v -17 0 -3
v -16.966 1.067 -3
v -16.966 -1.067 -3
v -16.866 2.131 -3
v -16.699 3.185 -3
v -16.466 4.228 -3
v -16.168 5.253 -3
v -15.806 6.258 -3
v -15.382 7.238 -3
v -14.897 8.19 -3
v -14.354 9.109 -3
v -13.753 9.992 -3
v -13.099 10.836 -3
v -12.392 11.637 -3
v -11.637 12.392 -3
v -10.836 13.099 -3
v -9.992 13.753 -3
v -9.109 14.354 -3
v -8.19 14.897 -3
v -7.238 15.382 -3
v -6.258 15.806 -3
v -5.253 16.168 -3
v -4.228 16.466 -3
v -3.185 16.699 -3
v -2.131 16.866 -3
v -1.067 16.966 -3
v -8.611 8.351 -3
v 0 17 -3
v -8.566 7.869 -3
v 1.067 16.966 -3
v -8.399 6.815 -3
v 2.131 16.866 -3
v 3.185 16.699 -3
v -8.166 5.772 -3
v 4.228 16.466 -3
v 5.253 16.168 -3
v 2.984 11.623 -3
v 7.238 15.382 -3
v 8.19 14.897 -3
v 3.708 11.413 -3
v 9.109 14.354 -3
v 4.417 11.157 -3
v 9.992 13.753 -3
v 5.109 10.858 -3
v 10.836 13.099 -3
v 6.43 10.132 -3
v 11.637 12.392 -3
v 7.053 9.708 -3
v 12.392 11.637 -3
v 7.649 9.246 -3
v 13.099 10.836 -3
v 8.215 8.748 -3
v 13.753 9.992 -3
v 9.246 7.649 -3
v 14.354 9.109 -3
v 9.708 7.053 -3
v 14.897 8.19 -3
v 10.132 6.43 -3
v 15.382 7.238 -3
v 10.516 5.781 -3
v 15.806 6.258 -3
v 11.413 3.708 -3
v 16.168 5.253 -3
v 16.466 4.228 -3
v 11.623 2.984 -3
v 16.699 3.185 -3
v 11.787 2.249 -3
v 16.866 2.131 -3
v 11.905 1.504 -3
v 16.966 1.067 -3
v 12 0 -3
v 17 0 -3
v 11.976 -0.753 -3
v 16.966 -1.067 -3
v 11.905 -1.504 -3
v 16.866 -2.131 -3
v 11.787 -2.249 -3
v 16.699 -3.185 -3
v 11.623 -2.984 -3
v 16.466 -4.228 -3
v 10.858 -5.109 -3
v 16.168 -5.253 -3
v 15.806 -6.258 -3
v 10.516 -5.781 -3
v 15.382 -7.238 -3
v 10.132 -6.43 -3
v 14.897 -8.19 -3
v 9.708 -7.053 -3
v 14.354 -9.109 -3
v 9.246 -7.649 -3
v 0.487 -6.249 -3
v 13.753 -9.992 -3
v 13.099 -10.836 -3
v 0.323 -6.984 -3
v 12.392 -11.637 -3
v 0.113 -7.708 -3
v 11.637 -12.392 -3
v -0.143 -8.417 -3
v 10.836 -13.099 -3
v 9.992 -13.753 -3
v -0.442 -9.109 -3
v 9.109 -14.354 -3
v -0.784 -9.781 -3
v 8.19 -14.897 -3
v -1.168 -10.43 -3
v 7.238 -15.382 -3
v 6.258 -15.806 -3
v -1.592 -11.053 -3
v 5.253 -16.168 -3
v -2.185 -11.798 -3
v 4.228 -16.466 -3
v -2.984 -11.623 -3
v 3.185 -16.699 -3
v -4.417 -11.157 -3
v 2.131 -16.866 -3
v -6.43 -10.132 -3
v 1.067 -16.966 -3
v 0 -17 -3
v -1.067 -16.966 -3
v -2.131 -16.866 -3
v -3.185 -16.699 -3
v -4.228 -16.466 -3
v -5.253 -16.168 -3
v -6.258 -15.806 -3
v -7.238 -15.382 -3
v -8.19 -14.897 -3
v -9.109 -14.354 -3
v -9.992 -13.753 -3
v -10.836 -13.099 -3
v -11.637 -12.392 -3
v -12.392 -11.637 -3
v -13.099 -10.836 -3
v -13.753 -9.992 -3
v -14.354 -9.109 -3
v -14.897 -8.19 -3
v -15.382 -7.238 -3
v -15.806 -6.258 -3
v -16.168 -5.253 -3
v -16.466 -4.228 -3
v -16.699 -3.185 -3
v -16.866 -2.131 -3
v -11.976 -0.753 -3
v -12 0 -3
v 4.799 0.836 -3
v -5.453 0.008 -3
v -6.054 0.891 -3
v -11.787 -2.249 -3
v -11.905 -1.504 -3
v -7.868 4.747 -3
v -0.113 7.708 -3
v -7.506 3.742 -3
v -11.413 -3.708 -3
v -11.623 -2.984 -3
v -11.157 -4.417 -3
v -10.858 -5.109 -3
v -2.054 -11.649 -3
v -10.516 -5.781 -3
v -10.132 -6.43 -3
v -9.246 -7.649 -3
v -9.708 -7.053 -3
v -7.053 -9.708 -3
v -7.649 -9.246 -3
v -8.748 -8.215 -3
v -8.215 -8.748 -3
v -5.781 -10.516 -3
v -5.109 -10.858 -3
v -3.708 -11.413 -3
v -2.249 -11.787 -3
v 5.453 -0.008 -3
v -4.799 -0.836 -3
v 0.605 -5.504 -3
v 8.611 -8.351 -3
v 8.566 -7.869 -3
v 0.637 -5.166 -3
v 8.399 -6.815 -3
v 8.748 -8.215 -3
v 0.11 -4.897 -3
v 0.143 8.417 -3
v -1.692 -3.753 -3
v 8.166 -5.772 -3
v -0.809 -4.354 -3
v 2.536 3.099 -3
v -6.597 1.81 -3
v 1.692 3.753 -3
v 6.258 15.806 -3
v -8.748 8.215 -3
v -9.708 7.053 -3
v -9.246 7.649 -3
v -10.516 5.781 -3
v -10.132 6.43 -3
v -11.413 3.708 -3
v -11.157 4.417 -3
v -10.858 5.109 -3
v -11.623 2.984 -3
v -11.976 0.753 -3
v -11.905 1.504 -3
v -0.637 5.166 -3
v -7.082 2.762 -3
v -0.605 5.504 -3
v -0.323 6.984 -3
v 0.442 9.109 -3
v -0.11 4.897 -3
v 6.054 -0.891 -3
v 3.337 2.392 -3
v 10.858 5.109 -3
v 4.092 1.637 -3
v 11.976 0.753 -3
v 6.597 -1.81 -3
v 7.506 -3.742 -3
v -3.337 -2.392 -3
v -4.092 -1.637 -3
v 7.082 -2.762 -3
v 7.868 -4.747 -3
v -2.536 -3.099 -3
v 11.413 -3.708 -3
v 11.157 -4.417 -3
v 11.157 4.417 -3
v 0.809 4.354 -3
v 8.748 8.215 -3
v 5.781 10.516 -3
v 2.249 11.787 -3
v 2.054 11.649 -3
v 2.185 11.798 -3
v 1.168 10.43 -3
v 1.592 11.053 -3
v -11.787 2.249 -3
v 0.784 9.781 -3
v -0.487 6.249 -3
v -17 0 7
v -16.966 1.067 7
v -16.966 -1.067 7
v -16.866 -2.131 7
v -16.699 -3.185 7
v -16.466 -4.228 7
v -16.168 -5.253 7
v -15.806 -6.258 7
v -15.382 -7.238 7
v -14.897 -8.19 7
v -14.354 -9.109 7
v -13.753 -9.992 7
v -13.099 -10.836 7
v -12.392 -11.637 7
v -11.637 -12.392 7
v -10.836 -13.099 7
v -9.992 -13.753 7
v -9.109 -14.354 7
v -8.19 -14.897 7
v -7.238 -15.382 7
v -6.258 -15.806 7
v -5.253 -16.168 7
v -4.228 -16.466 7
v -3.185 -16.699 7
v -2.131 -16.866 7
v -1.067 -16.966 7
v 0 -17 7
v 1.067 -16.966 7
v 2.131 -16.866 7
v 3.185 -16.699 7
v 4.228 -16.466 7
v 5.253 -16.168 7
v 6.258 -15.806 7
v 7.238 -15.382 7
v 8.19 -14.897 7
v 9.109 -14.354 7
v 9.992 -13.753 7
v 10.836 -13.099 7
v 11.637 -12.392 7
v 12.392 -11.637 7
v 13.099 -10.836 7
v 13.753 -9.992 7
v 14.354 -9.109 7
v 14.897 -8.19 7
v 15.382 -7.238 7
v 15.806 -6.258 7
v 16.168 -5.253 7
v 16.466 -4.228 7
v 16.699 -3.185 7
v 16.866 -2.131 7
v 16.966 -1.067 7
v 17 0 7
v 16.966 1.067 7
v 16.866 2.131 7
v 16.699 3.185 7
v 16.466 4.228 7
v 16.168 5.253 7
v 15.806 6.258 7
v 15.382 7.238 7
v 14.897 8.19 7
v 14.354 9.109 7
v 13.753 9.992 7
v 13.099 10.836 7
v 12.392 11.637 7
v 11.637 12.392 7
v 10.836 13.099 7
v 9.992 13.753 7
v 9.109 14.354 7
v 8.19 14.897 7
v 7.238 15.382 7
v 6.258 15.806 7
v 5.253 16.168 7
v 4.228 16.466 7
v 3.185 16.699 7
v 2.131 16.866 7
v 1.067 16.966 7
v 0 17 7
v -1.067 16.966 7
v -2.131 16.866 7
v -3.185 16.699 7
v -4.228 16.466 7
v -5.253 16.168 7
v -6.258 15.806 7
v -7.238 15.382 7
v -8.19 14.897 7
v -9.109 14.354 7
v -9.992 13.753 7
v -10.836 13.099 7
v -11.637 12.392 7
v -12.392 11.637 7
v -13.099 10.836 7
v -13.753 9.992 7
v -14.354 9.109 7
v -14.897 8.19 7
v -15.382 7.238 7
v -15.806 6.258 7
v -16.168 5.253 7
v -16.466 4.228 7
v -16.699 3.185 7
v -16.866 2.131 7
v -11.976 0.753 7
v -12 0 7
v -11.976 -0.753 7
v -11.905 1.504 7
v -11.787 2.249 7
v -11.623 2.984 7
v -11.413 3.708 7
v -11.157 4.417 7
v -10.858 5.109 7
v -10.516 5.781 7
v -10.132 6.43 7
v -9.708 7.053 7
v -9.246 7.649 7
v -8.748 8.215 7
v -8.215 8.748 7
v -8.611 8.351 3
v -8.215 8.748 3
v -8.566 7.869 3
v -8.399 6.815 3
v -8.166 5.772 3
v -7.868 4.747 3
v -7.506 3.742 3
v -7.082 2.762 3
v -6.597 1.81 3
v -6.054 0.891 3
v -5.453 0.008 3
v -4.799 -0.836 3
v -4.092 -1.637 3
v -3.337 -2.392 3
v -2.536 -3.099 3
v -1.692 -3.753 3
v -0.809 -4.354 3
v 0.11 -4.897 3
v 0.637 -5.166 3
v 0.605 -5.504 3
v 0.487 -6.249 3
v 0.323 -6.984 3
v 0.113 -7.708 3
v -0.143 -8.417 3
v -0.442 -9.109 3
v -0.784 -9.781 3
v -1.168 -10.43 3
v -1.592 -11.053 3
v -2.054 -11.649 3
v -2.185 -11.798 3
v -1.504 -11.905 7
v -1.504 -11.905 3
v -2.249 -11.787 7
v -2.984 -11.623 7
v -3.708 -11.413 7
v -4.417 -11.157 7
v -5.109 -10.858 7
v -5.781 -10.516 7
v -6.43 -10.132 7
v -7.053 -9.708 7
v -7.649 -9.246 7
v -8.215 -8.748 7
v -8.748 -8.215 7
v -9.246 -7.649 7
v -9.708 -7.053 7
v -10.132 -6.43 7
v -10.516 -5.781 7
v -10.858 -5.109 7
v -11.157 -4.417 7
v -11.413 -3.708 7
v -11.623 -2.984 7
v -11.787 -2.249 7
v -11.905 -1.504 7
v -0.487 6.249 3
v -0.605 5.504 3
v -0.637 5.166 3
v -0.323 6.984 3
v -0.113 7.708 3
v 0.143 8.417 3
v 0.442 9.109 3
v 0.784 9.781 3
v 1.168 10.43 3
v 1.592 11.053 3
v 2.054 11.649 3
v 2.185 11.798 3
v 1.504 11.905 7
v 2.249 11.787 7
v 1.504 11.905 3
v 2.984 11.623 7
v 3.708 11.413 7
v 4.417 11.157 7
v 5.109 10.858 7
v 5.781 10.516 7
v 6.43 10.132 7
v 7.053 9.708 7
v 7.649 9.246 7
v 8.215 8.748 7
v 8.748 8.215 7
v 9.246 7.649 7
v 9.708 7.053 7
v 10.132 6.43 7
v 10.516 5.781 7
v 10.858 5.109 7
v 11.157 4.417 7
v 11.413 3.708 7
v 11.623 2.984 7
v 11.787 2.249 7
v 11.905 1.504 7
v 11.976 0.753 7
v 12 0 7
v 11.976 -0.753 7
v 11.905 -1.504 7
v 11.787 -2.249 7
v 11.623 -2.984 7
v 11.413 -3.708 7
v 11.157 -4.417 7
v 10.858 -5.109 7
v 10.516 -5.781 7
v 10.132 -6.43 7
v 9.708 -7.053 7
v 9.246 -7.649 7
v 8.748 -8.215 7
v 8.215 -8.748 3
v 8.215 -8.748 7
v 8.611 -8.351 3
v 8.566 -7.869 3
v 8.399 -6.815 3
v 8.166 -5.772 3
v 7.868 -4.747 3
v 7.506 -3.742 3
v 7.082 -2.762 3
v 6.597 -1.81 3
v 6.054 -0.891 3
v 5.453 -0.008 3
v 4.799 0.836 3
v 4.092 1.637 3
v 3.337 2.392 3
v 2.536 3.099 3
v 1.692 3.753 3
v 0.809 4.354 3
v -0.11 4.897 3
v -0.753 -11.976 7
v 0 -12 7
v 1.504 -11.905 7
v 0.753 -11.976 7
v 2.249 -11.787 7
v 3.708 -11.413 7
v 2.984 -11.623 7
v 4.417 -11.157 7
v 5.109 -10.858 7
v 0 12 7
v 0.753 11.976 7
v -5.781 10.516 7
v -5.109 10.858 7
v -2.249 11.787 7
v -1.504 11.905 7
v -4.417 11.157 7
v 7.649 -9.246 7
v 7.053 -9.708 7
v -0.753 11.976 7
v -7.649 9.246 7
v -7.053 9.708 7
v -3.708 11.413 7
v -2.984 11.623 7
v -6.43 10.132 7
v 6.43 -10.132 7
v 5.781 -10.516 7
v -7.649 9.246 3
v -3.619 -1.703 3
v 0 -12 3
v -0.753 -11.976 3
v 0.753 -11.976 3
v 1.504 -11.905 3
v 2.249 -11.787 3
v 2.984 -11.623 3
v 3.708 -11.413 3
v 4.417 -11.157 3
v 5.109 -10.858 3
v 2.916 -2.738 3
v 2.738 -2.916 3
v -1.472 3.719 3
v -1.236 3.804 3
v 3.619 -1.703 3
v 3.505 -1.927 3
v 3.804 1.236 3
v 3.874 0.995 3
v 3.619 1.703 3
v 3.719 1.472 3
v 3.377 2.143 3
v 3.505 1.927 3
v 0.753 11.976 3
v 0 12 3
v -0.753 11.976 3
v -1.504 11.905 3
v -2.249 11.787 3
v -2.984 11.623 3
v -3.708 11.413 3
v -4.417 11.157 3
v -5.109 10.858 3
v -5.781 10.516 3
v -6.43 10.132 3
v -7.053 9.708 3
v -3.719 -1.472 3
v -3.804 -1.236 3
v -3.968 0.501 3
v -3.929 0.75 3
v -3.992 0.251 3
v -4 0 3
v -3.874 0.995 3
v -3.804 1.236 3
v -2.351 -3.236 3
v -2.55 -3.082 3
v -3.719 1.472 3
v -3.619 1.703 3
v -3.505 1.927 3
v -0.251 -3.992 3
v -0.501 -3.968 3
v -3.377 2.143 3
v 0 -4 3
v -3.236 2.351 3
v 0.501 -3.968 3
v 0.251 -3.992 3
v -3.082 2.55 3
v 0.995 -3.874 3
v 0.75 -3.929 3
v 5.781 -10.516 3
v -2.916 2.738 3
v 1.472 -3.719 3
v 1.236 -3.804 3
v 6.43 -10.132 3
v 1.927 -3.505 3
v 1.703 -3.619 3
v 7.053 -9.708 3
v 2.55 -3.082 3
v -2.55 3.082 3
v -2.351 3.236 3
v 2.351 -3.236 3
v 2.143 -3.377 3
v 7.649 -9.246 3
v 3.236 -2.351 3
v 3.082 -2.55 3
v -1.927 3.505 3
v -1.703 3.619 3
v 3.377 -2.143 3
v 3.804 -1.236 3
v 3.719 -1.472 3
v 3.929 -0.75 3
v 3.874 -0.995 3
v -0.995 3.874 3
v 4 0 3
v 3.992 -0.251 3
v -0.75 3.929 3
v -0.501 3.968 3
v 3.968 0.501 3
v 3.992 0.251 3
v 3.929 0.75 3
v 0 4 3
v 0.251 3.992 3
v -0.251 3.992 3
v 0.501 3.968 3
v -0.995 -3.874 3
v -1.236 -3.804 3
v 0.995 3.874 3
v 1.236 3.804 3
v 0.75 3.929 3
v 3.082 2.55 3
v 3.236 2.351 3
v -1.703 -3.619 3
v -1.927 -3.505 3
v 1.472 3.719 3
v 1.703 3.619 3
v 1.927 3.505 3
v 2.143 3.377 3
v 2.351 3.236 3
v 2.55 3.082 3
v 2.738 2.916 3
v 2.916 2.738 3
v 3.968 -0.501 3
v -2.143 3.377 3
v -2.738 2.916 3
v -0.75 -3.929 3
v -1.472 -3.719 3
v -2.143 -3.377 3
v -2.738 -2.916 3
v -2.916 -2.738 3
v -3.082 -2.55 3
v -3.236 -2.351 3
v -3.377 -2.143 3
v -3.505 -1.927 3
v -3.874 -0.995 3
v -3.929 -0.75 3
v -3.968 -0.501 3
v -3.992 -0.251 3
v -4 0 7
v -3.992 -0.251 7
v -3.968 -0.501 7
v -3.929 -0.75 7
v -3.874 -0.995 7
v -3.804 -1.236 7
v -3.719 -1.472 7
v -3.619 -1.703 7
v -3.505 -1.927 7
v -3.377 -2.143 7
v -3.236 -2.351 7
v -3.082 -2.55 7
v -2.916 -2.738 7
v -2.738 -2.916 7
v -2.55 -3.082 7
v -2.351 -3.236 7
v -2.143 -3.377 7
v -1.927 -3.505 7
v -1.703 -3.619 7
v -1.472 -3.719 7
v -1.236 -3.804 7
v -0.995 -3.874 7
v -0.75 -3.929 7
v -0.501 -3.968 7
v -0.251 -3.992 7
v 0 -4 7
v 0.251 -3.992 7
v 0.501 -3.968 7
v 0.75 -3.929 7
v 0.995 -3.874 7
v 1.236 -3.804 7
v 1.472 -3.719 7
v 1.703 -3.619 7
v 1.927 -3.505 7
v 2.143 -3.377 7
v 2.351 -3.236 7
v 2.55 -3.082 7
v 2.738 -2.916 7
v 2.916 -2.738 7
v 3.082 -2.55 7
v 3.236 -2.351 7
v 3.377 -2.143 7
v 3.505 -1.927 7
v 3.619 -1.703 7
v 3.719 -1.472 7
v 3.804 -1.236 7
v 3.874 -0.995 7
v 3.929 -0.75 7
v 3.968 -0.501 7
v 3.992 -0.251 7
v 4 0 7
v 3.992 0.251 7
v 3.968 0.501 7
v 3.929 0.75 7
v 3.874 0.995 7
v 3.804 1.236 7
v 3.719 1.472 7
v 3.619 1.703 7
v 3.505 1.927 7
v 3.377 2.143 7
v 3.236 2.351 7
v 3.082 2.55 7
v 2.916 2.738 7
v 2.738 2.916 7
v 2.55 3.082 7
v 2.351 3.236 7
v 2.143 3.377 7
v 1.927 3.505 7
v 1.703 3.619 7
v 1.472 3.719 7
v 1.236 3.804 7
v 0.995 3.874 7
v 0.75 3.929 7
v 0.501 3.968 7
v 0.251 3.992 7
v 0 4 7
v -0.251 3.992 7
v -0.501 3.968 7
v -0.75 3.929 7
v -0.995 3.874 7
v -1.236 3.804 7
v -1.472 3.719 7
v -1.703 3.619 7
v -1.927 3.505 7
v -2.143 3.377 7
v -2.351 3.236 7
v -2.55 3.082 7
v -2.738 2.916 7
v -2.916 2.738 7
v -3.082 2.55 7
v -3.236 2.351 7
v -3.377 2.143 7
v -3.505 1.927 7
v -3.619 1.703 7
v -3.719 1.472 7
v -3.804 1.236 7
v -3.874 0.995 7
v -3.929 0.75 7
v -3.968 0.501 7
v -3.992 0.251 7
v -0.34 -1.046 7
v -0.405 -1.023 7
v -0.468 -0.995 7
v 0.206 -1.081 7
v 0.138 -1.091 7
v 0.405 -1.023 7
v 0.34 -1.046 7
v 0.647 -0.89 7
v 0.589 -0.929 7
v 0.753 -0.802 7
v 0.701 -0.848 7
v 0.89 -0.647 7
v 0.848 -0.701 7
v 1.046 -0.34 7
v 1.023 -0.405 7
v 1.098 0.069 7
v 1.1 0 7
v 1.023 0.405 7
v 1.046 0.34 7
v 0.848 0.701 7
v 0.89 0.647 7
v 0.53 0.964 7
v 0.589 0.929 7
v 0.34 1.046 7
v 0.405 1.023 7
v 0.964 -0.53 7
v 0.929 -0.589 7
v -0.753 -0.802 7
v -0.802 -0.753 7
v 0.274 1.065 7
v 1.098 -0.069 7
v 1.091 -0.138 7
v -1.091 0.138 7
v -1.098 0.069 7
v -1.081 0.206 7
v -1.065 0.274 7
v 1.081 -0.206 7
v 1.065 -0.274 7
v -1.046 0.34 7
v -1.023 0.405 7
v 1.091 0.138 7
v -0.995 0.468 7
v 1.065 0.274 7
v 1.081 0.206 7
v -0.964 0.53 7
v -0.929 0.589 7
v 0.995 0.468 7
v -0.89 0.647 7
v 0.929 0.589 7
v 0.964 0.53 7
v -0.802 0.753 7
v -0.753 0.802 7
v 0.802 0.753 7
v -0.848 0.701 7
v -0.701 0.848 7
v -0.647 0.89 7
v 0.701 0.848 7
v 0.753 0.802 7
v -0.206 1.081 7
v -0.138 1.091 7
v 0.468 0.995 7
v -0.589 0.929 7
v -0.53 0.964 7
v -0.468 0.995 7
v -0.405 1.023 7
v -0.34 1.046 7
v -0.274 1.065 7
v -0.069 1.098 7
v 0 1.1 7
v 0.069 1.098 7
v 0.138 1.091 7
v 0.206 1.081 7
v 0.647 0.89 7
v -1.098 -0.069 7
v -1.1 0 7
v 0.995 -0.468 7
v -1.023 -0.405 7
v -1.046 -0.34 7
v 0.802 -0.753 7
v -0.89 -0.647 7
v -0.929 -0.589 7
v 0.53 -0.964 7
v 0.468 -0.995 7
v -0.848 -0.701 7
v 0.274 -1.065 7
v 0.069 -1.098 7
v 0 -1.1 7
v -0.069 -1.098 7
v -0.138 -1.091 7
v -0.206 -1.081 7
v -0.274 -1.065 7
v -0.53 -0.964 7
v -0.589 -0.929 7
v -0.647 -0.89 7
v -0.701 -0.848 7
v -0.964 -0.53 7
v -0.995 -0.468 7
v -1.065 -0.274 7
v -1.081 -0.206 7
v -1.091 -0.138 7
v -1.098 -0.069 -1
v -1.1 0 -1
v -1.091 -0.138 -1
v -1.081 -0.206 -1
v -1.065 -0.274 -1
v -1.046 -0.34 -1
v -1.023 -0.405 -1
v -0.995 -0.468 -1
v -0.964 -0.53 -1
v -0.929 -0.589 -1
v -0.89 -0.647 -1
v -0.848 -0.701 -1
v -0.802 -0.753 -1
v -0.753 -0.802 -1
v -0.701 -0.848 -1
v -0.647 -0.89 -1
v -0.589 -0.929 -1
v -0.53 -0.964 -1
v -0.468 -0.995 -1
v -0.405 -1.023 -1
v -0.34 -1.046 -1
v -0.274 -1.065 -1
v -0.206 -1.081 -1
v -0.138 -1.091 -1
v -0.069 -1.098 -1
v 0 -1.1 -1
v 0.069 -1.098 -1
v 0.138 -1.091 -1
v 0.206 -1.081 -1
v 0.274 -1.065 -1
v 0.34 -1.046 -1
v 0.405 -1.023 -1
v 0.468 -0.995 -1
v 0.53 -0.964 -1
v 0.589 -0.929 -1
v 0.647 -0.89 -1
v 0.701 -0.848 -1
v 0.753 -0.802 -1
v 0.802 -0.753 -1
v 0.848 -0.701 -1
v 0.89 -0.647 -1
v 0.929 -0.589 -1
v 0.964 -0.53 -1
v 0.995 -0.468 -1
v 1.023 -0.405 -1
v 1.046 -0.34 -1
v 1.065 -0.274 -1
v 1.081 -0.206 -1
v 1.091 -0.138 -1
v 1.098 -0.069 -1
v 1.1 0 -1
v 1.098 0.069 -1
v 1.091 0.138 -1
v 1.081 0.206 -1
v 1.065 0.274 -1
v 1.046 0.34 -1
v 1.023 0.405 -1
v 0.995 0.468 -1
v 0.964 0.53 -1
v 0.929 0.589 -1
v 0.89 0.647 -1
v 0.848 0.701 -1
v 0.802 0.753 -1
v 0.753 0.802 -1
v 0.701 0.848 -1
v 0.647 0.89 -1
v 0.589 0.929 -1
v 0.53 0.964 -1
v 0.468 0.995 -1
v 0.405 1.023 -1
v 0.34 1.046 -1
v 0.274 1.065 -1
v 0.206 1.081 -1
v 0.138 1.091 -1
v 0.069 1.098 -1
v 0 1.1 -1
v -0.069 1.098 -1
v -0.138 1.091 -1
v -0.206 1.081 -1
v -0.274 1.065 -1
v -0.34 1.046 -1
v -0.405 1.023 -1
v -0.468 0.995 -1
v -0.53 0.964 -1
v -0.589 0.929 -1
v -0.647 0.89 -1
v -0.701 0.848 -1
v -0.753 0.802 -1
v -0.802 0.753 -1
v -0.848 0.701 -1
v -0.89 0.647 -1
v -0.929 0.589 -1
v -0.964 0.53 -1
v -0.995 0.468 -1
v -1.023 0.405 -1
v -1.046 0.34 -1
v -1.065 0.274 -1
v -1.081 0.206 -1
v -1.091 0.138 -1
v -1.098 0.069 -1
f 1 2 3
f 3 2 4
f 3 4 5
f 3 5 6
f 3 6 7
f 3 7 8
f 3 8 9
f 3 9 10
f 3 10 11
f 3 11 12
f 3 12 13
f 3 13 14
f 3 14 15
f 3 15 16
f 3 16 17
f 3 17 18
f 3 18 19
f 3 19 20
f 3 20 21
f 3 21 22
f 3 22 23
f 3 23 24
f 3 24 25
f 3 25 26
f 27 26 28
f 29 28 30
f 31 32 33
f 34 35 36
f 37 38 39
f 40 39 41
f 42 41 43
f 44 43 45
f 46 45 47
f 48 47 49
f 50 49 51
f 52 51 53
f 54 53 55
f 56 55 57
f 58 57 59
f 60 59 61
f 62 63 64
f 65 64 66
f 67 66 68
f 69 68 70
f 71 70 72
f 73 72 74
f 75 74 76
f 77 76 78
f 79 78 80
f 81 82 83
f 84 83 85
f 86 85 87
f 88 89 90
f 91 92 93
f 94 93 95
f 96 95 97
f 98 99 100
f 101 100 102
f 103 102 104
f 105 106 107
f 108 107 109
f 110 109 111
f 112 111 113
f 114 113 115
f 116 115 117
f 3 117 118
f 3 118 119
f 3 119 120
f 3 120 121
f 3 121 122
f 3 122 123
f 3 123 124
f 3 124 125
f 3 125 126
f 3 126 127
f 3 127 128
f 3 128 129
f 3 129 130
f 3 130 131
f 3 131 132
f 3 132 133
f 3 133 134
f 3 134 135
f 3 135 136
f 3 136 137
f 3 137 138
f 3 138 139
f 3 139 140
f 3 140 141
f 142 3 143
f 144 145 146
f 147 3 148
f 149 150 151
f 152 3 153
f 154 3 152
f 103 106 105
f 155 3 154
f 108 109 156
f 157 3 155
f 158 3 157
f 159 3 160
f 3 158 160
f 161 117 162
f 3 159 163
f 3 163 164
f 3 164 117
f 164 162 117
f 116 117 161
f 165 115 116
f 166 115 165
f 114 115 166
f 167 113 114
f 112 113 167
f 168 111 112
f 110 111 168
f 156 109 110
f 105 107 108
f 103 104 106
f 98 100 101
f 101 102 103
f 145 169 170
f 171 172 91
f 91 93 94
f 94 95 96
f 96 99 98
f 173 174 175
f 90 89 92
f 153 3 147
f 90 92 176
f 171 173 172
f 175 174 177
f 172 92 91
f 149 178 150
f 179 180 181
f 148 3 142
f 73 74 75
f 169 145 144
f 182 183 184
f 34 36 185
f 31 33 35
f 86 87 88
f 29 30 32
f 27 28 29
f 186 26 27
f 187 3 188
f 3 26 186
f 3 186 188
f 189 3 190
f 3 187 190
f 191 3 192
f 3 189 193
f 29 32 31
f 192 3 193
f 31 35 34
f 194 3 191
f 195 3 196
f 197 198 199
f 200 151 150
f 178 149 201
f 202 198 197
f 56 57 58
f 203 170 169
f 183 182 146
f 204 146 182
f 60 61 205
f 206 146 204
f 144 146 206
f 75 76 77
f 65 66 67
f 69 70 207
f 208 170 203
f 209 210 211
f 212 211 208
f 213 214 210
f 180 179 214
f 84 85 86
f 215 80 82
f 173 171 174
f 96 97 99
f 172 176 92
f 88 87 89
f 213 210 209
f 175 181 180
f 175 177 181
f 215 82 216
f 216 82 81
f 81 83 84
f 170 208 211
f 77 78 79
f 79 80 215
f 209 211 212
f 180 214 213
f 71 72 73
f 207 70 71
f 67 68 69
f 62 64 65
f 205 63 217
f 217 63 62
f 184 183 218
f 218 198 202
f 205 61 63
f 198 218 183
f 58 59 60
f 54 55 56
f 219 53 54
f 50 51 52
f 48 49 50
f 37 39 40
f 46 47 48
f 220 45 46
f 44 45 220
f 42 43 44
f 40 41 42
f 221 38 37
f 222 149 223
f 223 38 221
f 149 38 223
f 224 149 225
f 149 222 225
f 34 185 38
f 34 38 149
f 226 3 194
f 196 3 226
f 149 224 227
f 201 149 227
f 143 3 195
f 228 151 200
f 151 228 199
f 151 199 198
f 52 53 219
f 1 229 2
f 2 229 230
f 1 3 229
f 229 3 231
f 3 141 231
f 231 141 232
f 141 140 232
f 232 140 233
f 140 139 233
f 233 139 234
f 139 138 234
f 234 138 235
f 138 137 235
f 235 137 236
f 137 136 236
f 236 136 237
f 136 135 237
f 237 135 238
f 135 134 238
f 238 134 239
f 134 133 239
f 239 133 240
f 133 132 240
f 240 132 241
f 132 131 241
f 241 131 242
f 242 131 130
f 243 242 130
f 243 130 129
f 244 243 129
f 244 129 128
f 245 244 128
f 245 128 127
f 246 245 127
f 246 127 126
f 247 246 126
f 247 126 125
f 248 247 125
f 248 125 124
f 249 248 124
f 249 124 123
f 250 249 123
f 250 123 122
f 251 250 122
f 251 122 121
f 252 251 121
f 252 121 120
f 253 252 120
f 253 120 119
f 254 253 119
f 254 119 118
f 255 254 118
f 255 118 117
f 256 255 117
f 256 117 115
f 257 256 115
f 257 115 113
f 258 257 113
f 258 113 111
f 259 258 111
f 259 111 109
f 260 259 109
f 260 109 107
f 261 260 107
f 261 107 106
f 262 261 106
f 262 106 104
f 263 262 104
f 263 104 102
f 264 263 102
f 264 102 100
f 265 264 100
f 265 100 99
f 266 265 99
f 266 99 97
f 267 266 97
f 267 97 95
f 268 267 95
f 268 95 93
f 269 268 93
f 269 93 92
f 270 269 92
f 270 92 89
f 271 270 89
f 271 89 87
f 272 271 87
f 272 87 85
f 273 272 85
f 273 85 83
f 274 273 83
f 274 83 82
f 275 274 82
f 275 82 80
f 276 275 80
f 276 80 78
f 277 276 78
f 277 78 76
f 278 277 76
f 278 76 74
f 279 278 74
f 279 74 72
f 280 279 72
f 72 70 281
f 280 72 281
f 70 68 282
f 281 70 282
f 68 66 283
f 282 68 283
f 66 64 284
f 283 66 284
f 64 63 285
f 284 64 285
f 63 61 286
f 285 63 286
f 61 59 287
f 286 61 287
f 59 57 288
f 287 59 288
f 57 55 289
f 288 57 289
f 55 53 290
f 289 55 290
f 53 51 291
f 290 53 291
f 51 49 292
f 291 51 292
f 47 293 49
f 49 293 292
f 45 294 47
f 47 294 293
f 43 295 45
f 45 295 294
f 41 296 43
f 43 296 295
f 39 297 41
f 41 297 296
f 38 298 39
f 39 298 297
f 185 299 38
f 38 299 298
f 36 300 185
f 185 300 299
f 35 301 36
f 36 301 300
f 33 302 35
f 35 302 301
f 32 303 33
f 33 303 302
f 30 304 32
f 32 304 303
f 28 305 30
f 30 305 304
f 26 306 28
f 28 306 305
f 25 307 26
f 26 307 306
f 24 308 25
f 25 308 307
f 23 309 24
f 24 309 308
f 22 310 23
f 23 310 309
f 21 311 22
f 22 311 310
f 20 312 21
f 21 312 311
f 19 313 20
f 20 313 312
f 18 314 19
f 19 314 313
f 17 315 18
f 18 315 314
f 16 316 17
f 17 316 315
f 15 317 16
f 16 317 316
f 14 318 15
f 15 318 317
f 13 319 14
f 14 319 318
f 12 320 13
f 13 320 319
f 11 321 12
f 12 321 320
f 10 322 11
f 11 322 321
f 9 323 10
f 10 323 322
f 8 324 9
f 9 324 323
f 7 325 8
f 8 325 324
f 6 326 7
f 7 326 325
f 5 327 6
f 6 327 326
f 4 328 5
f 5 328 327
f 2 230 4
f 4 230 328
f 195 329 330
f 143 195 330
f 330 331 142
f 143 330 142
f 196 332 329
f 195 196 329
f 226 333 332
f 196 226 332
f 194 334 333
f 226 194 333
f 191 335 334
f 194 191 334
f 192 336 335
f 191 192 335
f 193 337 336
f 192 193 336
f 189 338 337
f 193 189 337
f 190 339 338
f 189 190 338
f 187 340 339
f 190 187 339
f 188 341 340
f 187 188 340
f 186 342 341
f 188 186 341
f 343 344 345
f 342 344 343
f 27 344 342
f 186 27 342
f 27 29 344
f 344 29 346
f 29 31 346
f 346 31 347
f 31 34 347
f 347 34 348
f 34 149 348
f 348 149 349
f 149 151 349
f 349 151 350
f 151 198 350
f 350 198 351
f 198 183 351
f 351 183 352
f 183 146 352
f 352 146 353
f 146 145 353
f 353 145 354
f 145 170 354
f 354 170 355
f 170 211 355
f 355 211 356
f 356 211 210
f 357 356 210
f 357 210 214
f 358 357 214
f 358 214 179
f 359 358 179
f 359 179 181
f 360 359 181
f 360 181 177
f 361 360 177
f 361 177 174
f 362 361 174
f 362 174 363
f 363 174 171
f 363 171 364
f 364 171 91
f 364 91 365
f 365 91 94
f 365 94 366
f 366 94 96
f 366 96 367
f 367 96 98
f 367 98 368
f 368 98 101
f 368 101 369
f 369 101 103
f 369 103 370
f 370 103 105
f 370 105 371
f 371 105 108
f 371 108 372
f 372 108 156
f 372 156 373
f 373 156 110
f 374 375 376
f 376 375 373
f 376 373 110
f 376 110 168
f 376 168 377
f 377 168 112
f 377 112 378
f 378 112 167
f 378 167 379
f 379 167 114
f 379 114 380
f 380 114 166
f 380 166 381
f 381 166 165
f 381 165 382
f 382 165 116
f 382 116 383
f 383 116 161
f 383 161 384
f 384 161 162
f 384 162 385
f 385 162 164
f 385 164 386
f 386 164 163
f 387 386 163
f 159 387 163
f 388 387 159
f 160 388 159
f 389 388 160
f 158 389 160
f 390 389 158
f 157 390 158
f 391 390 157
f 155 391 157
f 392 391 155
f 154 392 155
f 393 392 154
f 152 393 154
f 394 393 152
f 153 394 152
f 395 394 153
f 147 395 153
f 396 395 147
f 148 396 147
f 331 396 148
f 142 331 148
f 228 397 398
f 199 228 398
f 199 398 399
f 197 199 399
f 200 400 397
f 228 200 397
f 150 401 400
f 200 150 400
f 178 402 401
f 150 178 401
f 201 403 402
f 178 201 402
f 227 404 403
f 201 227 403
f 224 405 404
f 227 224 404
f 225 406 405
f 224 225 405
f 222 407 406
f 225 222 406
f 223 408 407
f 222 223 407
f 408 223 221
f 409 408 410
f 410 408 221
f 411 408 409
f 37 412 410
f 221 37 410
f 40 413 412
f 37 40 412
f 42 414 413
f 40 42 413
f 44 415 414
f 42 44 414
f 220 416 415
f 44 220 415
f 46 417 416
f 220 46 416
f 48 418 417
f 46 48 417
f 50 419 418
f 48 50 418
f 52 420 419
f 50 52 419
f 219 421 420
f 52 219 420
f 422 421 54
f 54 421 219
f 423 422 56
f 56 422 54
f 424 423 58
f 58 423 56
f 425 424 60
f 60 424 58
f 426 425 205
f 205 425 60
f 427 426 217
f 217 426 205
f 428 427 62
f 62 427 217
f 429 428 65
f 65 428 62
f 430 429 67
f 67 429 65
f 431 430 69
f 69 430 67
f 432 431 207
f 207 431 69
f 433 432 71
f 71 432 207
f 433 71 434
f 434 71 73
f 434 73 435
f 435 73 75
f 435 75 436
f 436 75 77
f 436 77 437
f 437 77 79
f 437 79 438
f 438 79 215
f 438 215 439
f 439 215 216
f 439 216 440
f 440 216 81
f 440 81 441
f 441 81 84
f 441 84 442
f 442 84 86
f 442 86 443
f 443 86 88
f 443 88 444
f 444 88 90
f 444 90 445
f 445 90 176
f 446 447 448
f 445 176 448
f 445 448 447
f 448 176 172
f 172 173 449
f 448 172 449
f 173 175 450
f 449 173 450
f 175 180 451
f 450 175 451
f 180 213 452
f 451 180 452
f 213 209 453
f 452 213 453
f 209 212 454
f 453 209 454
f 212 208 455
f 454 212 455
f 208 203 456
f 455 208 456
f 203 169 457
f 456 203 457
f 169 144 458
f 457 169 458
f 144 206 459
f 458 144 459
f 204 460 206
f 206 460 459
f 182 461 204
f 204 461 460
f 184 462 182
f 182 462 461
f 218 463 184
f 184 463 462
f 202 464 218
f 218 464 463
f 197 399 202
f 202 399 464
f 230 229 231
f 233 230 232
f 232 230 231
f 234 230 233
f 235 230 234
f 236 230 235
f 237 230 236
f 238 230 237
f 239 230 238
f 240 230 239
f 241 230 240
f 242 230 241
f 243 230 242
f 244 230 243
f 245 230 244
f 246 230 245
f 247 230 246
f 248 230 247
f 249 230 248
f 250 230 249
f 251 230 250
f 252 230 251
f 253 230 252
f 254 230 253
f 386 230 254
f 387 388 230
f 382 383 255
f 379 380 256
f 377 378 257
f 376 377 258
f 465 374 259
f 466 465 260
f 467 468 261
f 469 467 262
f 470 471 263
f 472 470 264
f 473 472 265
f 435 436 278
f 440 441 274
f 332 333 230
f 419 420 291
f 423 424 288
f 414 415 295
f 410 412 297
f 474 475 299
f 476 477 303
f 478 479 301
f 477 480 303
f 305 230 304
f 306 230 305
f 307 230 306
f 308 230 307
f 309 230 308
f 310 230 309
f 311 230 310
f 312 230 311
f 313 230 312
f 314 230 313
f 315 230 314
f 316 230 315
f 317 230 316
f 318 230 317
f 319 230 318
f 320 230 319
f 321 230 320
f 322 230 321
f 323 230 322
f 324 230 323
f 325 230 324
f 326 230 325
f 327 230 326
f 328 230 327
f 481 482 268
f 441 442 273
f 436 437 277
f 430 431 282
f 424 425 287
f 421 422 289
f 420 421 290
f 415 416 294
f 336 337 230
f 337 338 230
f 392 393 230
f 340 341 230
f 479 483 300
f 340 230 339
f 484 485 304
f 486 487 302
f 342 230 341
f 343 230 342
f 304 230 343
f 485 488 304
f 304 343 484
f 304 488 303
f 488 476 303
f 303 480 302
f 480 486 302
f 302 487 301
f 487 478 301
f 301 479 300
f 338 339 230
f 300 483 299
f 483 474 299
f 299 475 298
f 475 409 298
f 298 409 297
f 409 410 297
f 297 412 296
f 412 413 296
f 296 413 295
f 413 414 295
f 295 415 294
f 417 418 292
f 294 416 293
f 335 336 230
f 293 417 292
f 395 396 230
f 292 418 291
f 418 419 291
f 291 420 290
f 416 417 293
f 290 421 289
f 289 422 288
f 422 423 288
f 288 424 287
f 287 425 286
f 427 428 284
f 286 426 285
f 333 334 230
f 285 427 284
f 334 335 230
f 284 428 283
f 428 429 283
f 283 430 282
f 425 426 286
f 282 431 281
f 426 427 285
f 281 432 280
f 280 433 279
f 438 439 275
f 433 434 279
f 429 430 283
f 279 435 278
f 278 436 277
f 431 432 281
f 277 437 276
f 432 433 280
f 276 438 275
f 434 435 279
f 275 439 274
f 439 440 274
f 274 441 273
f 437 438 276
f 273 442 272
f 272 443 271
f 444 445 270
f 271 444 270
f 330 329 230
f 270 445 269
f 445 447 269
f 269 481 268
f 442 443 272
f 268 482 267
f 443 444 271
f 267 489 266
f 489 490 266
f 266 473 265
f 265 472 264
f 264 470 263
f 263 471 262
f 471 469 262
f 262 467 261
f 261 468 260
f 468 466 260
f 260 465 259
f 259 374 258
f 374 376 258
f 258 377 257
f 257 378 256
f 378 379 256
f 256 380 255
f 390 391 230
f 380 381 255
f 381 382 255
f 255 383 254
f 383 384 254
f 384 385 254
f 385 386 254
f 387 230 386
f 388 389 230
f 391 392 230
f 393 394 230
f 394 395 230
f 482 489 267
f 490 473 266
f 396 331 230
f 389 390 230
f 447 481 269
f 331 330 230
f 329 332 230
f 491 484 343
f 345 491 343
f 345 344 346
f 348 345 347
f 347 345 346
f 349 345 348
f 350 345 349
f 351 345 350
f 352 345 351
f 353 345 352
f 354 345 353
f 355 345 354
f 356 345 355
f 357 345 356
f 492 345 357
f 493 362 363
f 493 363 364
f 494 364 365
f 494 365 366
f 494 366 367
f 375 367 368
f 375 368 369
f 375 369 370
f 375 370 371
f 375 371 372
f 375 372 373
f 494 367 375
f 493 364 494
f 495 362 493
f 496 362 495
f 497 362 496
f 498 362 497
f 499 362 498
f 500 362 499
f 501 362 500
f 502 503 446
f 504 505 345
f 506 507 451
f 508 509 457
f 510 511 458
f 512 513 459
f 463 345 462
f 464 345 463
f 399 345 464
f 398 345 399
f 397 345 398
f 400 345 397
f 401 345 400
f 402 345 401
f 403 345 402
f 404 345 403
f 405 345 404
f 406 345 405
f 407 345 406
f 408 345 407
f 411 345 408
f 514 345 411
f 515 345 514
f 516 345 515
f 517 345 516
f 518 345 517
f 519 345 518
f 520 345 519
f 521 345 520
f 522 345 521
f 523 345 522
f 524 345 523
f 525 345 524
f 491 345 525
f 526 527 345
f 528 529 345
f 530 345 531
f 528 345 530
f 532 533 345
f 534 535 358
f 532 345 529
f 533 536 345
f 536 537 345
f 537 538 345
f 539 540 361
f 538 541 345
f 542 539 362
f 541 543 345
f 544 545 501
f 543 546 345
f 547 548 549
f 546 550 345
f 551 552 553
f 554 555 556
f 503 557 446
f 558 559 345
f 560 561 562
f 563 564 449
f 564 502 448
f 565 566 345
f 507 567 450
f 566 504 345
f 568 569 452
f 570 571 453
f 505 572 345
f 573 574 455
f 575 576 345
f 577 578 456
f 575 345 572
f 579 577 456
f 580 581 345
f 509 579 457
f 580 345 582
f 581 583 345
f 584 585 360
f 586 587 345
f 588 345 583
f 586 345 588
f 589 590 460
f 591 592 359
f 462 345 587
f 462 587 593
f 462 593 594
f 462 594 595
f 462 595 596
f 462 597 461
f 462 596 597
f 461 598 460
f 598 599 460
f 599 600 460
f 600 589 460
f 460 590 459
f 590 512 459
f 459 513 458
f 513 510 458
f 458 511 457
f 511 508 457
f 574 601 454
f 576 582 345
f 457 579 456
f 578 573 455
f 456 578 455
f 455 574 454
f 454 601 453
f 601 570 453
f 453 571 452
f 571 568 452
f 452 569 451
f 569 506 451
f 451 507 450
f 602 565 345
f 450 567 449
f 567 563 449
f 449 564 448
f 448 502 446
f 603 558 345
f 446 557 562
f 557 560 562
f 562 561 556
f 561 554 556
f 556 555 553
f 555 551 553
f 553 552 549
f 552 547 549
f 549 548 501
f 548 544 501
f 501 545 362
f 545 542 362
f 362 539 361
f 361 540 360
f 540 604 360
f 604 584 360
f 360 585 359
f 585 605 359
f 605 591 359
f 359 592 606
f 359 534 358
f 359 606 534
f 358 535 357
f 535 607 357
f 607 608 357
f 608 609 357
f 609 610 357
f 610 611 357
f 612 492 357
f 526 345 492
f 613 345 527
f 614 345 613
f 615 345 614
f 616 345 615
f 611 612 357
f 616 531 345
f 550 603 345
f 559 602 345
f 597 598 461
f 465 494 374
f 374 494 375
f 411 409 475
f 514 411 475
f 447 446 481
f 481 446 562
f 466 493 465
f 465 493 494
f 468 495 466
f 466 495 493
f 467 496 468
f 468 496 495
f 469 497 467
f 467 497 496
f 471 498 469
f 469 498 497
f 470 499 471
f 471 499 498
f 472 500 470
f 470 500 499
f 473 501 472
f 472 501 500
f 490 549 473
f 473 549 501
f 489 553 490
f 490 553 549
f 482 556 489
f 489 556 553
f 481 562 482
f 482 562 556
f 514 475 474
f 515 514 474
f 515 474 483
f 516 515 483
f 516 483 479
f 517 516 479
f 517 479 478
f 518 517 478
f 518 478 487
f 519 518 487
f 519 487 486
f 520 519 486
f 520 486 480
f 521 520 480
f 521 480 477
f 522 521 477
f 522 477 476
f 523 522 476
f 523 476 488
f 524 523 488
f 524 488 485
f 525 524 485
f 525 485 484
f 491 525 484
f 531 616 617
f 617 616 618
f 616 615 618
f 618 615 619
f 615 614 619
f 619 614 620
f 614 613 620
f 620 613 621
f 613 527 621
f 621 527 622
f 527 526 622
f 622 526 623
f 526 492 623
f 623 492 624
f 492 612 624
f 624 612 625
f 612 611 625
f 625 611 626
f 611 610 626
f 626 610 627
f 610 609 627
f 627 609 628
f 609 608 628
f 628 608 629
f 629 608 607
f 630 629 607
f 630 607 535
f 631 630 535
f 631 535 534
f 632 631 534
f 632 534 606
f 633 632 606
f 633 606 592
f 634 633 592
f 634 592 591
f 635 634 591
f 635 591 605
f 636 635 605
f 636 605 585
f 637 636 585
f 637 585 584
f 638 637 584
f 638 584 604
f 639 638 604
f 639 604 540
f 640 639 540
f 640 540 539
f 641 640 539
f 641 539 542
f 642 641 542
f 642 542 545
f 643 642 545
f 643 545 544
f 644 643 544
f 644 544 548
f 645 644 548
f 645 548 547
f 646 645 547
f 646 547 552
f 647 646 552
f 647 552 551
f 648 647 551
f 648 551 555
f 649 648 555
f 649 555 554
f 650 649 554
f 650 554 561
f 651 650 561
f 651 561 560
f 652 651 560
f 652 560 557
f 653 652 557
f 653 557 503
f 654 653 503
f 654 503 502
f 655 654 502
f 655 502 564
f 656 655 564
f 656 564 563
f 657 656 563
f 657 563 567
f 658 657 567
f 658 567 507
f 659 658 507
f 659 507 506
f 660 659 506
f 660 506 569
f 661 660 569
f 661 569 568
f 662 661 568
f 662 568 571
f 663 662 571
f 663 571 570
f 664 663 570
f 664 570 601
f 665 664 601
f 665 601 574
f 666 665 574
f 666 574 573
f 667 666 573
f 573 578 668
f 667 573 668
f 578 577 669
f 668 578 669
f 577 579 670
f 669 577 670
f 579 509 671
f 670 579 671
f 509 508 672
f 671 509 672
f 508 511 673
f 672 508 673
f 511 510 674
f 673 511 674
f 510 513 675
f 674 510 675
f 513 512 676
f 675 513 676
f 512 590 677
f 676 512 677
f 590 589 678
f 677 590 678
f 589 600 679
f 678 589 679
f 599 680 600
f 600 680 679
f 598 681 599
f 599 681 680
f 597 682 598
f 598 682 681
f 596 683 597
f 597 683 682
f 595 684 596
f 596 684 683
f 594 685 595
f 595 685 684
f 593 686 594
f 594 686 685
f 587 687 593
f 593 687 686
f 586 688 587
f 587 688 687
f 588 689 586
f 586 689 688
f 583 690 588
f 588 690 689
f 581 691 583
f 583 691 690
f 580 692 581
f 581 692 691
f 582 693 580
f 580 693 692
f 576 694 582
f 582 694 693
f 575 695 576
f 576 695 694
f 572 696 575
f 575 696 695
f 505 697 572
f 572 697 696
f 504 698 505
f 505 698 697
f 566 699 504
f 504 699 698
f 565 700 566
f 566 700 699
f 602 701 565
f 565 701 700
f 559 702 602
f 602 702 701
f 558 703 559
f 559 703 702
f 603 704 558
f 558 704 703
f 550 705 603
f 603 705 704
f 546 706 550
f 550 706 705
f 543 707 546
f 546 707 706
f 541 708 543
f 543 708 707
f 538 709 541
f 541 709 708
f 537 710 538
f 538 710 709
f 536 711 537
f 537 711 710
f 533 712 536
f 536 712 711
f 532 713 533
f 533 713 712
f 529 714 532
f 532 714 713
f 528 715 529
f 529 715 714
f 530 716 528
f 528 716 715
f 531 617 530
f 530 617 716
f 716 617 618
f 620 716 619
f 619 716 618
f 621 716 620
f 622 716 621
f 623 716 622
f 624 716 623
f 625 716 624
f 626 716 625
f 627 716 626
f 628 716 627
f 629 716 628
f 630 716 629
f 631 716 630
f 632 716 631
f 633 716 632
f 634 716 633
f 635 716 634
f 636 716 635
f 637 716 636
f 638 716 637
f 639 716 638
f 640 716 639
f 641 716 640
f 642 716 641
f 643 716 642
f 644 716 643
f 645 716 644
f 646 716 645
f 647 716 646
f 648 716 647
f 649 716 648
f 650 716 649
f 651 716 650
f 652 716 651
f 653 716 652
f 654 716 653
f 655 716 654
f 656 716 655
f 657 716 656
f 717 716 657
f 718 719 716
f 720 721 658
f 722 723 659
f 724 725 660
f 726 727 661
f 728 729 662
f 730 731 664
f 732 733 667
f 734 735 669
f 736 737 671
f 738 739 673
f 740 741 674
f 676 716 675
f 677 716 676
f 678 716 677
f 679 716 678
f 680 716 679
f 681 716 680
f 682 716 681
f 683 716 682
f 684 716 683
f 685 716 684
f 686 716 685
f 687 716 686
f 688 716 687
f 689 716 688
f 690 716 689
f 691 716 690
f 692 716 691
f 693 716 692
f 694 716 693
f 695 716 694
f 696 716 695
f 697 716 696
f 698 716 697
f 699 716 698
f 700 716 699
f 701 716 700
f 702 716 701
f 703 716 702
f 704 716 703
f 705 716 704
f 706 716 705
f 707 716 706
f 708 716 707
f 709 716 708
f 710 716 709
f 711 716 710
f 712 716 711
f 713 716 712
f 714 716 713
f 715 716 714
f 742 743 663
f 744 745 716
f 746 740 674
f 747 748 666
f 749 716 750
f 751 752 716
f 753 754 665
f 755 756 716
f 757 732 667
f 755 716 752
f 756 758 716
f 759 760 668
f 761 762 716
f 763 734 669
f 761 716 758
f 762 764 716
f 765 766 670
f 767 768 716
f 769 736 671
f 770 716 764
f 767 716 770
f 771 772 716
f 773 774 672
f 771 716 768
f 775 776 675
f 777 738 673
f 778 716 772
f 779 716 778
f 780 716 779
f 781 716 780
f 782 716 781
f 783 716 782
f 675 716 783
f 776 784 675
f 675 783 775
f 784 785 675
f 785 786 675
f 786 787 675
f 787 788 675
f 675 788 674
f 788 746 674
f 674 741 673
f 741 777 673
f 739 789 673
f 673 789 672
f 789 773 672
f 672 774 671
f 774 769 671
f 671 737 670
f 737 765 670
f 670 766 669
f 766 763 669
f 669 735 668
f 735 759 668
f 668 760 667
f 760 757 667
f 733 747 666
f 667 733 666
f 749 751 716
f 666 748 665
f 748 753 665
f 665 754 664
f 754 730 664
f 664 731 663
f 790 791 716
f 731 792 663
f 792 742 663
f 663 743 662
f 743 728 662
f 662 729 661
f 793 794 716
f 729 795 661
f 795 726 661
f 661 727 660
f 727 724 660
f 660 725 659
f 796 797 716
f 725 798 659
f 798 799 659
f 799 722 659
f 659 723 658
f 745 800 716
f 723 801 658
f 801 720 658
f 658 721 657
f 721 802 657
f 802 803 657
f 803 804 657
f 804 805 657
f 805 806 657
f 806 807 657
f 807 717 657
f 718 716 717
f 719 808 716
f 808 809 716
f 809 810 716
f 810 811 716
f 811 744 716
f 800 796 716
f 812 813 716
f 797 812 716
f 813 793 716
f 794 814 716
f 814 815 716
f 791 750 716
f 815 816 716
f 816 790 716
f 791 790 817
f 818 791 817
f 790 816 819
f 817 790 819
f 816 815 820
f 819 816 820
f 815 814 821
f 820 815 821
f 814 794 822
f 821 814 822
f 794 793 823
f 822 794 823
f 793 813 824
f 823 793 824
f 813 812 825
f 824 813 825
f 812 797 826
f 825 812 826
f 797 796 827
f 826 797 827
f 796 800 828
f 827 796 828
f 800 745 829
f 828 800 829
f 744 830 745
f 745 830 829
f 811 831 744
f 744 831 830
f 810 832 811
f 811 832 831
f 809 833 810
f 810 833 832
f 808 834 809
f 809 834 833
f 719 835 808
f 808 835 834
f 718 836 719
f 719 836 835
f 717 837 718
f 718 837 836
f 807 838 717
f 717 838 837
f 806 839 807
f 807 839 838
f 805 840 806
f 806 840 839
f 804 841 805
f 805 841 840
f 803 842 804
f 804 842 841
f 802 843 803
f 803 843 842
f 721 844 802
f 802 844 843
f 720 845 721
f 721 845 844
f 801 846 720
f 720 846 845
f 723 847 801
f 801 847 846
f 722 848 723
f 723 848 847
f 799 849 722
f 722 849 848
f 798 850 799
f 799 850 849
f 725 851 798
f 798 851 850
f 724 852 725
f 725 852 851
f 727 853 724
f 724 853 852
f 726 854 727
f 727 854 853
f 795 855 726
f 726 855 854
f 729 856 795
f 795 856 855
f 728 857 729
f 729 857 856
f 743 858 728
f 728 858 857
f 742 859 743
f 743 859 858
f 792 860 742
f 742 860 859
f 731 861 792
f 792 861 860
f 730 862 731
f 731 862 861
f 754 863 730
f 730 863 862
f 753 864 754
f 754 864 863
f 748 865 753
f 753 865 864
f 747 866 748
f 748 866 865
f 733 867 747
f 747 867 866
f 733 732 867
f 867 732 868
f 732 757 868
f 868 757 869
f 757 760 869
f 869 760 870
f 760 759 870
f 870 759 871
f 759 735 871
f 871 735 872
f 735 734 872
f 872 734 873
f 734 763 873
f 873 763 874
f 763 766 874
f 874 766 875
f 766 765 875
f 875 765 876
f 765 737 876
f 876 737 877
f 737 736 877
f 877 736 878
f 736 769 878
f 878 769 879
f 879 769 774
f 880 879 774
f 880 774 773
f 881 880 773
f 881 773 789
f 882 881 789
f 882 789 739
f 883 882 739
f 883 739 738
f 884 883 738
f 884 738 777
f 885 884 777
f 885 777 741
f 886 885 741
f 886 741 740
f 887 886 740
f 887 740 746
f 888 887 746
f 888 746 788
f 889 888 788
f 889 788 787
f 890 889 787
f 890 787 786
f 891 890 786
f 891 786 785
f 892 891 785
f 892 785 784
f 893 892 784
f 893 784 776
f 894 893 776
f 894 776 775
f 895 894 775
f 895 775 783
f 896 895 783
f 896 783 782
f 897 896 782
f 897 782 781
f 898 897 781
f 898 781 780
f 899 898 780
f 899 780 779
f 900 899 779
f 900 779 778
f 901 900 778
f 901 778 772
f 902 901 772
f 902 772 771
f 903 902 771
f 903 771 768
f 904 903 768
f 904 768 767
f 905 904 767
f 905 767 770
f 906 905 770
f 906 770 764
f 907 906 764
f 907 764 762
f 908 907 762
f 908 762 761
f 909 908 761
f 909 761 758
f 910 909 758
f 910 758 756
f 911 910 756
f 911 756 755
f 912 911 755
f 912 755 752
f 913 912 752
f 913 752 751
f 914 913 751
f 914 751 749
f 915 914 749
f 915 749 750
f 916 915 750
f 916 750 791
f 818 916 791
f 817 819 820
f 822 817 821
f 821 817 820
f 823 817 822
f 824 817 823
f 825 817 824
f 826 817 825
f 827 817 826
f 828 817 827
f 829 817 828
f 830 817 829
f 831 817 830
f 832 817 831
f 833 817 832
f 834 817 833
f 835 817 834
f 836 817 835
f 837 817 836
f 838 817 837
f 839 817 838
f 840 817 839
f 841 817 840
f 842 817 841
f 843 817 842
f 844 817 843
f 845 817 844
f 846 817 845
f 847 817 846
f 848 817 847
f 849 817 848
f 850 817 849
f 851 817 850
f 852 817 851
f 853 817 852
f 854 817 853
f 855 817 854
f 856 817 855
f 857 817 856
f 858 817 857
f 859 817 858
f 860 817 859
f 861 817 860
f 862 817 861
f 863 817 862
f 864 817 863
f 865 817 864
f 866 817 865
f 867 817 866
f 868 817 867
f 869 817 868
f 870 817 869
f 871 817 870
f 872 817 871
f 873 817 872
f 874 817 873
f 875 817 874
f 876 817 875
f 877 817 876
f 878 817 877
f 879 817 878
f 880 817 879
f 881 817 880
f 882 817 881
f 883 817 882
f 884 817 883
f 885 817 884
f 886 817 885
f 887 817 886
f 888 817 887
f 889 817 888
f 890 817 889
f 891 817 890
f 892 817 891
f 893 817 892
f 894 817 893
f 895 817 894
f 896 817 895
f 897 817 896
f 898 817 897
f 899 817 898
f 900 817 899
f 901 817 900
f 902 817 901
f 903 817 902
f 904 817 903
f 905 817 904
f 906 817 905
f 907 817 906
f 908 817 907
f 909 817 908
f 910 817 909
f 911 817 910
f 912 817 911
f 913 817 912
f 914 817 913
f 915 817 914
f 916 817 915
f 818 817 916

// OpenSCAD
// Roda SDL versão 2
//
// (c) 2014 Afonso Coutinho <afonso@yack.com.br>
//
// This program is free software: you can redistribute it and/or modify
// it under the terms of the GNU General Public License as published by
// the Free Software Foundation, either version 2 of the License, or
// (at your option) any later version.
//
// This program is distributed in the hope that it will be useful,
// but WITHOUT ANY WARRANTY; without even the implied warranty of
// MERCHANTABILITY or FITNESS FOR A PARTICULAR PURPOSE.  See the
// GNU General Public License for more details.
//
// You should have received a copy of the GNU General Public License
// along with this program.  If not, see <http://www.gnu.org/licenses/>.

$fn = 100;
difference(){
translate([0,0,2]) cylinder(r=17,h=10,center=true);
translate([0,0,0]) cylinder(r=12,h=15,center=true);
}

difference(){
translate([0,0,2]) cylinder(r=4,h=10,center=true);
translate([0,0,4]) cylinder(r=1.1,h=10,center=true);
}

difference(){
translate([8.3,10,0]) difference(){
cylinder(r=17,h=6,center=true);
translate([3,-6,0]) cylinder(r=12,h=15,center=true);
}

translate([0,0,0]) difference(){
cylinder(r=40,h=10,center=true);
translate([0,0,0]) cylinder(r=17,h=15,center=true);
}
translate([0,0,4]) cylinder(r=2.6,h=10,center=true);
}

difference(){
translate([-8.3,-10,0]) difference(){
cylinder(r=17,h=6,center=true);
translate([-3,6,0]) cylinder(r=12,h=15,center=true);
}

translate([0,0,0]) difference(){
cylinder(r=40,h=10,center=true);
translate([0,0,0]) cylinder(r=17,h=15,center=true);
}
translate([0,0,4]) cylinder(r=2.6,h=10,center=true);
}
